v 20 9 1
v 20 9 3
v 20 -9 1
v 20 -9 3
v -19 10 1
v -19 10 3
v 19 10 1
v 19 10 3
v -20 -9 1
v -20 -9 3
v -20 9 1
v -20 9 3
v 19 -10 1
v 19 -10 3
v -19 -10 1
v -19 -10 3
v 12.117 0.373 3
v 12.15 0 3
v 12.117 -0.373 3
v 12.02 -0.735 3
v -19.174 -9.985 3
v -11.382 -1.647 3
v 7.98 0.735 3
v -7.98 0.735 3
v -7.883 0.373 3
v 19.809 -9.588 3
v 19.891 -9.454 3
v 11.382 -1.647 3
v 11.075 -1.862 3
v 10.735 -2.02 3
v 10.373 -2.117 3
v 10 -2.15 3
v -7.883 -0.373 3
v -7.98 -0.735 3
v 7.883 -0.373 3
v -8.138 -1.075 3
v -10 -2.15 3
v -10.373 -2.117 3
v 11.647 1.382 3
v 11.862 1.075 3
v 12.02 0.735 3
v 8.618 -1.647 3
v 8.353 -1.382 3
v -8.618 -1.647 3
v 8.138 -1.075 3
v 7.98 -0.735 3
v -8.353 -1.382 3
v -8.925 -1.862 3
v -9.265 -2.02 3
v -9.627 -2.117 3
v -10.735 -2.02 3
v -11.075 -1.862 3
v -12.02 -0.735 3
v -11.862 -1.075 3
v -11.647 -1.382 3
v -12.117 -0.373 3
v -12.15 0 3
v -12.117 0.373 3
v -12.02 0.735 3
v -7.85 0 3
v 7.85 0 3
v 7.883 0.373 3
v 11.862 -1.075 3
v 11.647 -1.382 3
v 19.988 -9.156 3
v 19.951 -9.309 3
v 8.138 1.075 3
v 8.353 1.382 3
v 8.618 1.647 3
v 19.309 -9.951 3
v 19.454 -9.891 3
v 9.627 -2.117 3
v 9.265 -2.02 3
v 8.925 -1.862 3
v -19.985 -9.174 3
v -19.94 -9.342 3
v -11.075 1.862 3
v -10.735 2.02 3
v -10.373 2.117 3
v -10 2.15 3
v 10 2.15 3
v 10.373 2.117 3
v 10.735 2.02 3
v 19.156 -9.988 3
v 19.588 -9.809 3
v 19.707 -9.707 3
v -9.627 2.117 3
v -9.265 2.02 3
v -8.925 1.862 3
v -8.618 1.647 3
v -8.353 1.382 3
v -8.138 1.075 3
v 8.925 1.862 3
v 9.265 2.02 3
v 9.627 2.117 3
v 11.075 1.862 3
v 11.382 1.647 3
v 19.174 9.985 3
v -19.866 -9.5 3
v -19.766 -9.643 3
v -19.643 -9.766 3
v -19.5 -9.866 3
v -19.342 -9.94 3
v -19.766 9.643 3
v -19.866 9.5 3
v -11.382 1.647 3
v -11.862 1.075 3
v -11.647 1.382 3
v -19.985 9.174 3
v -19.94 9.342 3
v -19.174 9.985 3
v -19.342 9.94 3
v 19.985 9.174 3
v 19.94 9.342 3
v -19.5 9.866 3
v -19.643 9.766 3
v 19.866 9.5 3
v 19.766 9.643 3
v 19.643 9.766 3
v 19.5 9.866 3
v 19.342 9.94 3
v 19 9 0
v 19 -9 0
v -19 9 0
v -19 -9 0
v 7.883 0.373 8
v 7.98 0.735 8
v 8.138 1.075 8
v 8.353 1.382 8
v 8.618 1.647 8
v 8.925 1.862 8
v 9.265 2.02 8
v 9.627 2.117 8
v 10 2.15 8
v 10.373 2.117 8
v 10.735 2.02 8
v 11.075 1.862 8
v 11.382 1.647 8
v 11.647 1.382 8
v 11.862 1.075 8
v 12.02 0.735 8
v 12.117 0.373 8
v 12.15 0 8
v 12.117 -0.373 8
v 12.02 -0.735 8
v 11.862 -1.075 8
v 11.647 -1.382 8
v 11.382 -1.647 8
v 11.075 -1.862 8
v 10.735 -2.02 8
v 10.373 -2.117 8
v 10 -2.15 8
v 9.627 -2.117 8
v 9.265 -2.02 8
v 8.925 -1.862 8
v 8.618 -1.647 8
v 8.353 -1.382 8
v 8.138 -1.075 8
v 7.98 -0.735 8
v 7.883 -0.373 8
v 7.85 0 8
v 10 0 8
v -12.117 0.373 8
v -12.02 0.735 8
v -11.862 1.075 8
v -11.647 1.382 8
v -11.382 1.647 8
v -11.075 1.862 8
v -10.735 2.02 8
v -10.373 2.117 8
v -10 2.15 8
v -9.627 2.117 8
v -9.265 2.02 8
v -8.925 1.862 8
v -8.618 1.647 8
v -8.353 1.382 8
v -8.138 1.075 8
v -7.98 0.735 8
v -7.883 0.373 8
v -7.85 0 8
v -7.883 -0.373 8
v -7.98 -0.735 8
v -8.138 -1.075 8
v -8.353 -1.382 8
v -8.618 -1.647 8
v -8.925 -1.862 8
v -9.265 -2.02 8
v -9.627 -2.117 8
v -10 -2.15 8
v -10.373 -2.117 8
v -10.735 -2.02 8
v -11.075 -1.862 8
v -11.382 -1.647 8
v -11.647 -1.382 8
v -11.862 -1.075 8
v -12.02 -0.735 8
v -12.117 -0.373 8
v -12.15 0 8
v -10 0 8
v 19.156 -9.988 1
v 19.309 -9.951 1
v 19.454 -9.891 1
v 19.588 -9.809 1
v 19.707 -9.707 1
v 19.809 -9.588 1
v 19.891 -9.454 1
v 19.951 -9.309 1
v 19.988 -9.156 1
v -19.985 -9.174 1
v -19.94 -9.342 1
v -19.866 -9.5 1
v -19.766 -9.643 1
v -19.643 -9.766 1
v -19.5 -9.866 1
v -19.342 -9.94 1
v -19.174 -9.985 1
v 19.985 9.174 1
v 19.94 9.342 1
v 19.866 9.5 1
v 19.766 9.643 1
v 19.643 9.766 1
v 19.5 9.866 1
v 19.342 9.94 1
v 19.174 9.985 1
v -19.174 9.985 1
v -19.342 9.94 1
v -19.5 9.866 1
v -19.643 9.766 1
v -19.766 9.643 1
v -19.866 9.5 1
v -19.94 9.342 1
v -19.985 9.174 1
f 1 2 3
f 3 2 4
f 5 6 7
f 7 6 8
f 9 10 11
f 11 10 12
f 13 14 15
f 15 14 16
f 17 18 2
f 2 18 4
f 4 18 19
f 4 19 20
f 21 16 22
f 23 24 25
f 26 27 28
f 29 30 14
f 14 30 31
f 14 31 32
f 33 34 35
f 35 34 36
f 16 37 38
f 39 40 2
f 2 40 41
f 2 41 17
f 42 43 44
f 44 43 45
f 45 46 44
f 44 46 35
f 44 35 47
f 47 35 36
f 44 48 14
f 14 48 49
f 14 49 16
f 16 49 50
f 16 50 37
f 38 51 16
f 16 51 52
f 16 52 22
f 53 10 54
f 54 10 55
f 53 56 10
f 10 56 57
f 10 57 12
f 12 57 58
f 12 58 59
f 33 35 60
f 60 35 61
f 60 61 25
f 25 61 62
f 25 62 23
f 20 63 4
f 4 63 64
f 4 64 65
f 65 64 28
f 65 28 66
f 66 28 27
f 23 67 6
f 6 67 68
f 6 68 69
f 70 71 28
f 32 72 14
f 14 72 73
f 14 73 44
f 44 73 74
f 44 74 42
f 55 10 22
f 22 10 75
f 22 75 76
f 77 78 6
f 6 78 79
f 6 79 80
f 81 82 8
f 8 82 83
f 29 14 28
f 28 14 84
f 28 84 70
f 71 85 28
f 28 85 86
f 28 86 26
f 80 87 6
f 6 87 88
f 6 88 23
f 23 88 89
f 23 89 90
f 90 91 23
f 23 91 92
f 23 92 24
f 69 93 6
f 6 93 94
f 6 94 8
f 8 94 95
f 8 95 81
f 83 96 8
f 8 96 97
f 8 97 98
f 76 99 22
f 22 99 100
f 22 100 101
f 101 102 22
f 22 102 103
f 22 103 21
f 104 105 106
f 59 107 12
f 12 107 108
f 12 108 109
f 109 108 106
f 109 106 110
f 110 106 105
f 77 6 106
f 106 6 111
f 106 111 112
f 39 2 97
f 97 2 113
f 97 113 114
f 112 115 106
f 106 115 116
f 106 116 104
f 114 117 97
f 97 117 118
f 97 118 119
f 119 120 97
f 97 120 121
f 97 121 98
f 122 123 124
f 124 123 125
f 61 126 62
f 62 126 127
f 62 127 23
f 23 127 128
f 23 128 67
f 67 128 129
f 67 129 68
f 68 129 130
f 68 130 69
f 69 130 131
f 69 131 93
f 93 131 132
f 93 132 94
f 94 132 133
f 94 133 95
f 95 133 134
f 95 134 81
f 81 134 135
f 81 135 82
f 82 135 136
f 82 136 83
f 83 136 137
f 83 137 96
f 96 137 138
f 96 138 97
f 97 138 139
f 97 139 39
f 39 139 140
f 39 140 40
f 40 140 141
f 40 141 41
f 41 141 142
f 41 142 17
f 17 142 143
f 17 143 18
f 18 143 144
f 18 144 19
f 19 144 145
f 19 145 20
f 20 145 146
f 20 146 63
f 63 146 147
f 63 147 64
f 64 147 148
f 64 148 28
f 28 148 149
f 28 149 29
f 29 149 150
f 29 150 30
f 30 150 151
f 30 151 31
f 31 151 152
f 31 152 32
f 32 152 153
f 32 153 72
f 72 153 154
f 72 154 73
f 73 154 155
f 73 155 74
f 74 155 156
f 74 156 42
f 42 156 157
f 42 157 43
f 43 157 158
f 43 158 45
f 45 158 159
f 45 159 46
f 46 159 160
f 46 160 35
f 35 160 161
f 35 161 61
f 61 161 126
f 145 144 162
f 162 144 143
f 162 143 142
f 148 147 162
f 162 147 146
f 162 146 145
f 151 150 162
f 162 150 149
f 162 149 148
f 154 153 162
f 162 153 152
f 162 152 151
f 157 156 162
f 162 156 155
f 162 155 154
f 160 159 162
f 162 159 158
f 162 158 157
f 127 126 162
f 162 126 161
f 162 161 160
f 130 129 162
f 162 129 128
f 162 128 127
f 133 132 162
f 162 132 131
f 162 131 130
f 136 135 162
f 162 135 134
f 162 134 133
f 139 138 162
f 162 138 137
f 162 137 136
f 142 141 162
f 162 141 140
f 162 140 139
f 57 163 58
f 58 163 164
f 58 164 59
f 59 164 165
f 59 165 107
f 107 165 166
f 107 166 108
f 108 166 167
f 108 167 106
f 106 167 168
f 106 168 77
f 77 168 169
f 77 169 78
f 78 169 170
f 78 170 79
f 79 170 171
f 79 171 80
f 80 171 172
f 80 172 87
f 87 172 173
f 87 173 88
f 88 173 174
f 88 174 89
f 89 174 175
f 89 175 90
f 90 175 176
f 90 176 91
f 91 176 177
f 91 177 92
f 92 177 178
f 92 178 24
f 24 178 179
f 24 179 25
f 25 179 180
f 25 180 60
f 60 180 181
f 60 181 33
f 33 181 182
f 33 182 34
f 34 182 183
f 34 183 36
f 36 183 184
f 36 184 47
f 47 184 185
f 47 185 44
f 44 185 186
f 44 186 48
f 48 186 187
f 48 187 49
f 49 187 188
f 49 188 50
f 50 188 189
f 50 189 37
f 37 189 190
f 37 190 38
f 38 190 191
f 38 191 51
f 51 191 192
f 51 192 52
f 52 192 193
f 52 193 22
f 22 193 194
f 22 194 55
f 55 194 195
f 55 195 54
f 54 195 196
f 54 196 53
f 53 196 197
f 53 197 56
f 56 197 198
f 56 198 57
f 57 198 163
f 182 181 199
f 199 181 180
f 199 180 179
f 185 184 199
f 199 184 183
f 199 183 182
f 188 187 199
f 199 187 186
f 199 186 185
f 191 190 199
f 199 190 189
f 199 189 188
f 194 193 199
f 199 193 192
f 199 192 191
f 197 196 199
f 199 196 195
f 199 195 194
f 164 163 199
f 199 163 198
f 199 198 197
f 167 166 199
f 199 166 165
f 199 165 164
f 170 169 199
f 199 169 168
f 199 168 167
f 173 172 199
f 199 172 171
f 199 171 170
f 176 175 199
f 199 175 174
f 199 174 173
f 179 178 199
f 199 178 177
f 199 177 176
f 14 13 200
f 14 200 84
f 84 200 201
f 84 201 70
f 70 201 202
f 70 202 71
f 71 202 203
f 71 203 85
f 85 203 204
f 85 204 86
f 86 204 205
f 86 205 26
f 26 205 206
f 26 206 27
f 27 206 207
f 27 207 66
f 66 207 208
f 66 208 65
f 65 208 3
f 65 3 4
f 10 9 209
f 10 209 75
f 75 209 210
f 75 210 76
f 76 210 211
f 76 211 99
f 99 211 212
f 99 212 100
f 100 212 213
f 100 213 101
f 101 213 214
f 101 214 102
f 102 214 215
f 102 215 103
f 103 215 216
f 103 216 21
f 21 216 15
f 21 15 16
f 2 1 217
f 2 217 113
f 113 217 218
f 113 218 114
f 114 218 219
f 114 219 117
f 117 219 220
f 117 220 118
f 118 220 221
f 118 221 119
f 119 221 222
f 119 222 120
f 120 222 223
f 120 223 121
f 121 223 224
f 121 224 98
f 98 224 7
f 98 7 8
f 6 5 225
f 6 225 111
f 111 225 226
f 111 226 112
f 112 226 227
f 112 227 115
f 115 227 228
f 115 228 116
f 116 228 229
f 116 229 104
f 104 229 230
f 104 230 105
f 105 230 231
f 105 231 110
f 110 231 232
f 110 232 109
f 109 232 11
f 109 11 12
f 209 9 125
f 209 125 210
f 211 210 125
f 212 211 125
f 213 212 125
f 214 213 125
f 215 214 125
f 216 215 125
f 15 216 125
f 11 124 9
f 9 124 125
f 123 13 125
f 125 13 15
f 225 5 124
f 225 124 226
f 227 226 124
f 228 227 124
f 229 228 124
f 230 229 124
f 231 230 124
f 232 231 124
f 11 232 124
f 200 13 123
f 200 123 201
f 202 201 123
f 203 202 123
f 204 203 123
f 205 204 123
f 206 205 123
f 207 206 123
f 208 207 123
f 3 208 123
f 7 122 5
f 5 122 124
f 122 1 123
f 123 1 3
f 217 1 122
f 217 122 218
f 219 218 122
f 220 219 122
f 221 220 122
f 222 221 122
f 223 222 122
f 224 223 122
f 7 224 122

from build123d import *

# Parameters (mm, degrees)
SKETCH1_W           = 40
SKETCH1_H           = 20
BOSS_EXTRUDE1_DEPTH = 3
SKETCH2_R           = 2.15
BOSS_EXTRUDE2_DEPTH = 5
FILLET1_R           = 1
CHAMFER1_SIZE       = 1


with BuildPart() as part:
    # Sketch1 → Boss-Extrude1 (new body)
    with BuildSketch(Plane.XY):
        Rectangle(SKETCH1_W, SKETCH1_H)
    extrude(amount=BOSS_EXTRUDE1_DEPTH)

    # Sketch2 → Boss-Extrude2 (add)
    with BuildSketch(Plane.XY.offset(3)):
        with Locations((10, 0)):
            Circle(SKETCH2_R)
        with Locations((-10, 0)):
            Circle(SKETCH2_R)
    extrude(amount=BOSS_EXTRUDE2_DEPTH)

    # Fillet1
    fillet1_edges = [part.edges().sort_by_distance(p)[0] for p in [
        (20, -10, 1.5),
        (-20, -10, 1.5),
        (-20, 10, 1.5),
        (20, 10, 1.5),
    ]]
    fillet(fillet1_edges, radius=FILLET1_R)

    # Chamfer1
    chamfer1_edges = [part.edges().sort_by_distance(p)[0] for p in [
        (20, 0, 0),
        (0, -10, 0),
        (-20, 0, 0),
        (0, 10, 0),
        (-19.707106781, 9.707106781, 0),
        (19.707106781, 9.707106781, 0),
        (-19.707106781, -9.707106781, 0),
        (19.707106781, -9.707106781, 0),
    ]]
    chamfer(chamfer1_edges, length=CHAMFER1_SIZE)


solid = part.part
